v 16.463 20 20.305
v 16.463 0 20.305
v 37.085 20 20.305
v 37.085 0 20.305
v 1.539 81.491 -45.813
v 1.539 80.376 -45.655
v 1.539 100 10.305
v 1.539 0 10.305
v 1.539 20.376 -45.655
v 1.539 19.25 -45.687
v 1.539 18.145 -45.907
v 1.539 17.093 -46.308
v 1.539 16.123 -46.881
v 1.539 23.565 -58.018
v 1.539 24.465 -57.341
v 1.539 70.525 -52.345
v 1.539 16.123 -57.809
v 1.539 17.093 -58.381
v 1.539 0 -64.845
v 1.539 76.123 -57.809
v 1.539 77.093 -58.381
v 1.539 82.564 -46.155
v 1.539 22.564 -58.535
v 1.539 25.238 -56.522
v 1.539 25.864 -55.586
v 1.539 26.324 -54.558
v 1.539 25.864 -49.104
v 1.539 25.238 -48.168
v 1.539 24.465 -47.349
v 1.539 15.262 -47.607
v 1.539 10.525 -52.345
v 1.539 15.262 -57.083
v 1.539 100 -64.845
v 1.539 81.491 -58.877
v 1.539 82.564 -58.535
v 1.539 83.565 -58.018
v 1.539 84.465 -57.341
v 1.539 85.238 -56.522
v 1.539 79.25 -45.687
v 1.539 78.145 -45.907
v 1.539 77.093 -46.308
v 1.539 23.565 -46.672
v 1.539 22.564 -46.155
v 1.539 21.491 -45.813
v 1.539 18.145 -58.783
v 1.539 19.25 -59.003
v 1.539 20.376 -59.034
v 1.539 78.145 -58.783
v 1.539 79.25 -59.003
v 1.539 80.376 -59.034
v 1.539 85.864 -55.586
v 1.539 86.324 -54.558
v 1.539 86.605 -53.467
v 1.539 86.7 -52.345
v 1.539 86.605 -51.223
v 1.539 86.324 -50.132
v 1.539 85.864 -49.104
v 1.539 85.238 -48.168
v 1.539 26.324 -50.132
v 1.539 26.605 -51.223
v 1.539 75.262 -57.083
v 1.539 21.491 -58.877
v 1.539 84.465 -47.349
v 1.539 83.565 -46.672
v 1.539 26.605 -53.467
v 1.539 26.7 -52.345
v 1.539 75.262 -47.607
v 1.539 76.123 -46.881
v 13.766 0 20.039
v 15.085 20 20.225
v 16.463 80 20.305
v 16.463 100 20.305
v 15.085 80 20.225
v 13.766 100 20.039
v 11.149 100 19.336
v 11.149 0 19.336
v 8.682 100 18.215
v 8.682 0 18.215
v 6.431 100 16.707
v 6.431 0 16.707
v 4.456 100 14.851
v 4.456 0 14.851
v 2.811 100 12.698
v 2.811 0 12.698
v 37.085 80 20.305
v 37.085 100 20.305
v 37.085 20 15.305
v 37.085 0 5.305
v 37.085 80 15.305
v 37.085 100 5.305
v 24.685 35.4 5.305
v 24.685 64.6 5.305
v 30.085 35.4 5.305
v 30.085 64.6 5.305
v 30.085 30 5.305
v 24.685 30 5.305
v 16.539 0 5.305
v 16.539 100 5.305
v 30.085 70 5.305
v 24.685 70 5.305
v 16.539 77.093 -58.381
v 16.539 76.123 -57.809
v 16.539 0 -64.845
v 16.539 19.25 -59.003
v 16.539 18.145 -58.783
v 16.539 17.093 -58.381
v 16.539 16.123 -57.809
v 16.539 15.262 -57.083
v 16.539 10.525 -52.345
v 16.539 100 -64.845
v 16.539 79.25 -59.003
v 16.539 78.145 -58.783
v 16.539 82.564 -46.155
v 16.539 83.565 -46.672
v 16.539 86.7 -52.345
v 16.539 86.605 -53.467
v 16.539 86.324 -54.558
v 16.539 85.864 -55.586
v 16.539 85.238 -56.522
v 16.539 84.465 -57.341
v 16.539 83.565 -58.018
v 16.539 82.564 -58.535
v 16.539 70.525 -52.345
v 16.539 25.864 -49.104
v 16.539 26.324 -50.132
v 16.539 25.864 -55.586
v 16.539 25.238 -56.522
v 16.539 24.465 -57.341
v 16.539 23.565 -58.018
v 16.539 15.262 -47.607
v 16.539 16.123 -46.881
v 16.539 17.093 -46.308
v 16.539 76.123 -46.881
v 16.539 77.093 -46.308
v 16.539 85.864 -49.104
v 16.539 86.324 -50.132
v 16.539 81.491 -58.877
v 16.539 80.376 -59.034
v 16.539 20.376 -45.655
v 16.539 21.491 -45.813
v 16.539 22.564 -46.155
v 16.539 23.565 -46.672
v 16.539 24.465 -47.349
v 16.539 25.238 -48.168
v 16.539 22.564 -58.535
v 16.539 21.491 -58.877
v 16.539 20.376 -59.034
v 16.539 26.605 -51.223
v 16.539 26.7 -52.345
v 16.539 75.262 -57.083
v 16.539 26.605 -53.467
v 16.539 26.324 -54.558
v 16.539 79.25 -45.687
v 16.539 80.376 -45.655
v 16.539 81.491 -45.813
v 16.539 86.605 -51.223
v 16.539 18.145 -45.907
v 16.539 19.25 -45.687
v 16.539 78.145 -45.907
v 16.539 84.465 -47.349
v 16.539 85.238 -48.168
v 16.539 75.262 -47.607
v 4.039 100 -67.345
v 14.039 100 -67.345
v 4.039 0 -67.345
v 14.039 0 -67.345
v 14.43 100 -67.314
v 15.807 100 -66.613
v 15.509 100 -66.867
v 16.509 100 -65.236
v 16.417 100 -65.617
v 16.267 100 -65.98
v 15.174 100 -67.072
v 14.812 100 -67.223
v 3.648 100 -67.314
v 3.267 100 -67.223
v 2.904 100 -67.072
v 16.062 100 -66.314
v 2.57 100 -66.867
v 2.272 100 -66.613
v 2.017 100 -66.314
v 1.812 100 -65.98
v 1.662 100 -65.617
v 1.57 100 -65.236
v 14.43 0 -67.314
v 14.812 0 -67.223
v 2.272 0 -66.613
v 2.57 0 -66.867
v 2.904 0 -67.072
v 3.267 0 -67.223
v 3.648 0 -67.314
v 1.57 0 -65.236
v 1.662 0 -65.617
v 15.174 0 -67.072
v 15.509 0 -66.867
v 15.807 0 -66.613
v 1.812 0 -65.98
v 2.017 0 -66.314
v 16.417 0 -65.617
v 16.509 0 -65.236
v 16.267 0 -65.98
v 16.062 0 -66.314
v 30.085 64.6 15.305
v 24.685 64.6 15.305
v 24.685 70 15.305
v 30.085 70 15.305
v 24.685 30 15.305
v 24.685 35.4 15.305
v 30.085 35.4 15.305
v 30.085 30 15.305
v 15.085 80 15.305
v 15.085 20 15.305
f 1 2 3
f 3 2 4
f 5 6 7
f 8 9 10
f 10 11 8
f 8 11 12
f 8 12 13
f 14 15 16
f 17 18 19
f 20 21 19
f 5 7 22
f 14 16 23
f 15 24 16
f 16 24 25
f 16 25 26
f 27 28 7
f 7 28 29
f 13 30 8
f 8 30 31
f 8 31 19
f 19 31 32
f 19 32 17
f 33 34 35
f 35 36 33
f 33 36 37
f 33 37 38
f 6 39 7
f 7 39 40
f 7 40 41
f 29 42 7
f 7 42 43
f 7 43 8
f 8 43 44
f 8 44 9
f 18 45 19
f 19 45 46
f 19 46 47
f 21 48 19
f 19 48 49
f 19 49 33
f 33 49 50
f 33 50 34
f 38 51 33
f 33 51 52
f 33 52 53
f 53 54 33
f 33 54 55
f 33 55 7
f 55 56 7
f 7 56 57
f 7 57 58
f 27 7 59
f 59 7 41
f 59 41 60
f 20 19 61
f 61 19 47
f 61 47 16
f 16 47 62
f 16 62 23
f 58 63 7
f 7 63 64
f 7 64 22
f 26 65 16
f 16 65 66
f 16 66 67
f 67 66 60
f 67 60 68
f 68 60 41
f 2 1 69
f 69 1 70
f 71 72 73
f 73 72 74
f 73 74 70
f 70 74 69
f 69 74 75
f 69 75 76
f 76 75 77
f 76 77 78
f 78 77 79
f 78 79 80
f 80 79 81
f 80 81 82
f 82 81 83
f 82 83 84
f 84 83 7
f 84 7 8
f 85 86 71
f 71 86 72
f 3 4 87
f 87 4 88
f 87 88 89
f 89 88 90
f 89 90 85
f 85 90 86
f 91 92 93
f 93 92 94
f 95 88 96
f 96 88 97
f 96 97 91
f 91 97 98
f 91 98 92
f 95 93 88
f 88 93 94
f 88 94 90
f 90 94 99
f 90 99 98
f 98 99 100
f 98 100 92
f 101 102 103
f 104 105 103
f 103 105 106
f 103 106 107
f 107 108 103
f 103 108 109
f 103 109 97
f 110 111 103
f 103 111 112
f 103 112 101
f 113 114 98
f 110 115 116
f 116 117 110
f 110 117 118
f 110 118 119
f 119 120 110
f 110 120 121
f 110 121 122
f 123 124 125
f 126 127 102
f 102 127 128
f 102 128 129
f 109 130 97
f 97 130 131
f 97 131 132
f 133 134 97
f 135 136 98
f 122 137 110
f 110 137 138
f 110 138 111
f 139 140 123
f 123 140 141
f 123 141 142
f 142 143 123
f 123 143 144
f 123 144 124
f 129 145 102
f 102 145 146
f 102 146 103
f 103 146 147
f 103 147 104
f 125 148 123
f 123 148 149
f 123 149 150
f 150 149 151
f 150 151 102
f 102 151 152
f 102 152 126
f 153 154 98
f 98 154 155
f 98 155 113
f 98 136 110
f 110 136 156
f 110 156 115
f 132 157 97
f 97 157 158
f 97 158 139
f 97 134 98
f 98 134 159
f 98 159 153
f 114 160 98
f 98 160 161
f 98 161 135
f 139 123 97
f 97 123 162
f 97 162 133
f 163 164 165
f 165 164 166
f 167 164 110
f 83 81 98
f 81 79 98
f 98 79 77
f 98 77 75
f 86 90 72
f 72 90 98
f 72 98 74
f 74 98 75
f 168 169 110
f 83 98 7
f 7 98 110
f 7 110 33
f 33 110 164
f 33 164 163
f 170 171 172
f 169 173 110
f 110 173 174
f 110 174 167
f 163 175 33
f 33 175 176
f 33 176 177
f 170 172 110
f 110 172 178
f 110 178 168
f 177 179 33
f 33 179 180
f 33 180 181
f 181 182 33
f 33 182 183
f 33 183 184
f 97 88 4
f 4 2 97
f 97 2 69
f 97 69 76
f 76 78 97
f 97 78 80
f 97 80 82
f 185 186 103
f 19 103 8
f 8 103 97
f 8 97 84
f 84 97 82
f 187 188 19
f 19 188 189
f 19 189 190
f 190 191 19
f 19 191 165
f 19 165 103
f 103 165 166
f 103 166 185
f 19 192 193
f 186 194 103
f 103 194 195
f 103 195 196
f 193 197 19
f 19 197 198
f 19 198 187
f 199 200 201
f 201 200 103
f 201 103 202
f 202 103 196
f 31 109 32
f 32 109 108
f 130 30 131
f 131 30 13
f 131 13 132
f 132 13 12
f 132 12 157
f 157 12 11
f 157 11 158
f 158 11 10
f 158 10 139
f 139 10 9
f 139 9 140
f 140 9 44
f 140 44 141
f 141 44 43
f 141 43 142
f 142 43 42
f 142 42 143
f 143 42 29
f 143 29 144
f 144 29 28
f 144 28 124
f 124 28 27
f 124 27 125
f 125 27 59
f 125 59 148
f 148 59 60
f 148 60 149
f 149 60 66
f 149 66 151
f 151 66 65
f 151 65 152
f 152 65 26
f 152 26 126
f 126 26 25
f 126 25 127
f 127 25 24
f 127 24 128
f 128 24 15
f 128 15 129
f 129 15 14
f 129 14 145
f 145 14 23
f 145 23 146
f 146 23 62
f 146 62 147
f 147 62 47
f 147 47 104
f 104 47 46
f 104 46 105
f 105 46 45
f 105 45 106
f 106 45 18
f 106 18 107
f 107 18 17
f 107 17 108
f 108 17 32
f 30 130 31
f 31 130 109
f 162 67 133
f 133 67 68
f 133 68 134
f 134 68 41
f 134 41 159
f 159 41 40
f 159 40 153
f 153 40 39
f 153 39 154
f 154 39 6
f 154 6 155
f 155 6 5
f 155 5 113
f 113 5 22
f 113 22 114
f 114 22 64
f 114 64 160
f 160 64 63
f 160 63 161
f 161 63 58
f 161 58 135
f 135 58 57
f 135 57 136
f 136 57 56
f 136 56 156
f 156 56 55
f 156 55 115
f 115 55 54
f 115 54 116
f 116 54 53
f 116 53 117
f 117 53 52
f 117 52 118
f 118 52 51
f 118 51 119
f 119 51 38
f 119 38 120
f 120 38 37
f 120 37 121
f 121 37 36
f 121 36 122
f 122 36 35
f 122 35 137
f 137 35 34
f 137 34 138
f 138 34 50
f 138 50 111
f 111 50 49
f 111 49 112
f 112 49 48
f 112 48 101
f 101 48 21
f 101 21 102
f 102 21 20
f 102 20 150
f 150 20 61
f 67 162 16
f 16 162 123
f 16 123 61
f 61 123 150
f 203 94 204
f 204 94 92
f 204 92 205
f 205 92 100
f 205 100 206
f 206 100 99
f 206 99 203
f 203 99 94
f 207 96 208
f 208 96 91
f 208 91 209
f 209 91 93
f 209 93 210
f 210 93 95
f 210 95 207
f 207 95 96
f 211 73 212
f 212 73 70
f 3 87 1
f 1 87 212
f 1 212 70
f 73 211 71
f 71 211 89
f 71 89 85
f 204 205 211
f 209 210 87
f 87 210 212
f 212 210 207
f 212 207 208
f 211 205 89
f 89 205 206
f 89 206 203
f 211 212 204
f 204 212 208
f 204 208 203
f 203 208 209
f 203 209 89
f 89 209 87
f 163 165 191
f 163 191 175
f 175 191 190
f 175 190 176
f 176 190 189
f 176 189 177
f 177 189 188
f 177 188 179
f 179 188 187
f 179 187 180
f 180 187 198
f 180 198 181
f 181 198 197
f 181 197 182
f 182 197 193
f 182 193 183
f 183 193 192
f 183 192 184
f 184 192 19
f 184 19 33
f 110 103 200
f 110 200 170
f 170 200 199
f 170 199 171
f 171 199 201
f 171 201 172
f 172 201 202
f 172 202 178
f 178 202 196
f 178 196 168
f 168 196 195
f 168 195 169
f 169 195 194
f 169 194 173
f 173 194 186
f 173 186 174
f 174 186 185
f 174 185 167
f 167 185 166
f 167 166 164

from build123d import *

# Parameters (mm, degrees)
BOSS_EXTRUDE1_DEPTH = 100
CUT_EXTRUDE1_DEPTH  = 126.693414536
SKETCH3_W           = 5.4
SKETCH3_H           = 5.4
CUT_EXTRUDE2_DEPTH  = 139.050096295
SKETCH4_W           = 22
SKETCH4_H           = 60
CUT_EXTRUDE3_DEPTH  = 5
FILLET1_R           = 2.5


with BuildPart() as part:
    # Sketch1 → Boss-Extrude1 (new body)
    with BuildSketch(Plane(origin=(0, 0, 0), x_dir=(-1, 0, 0), z_dir=(0, 1, 0))):
        with BuildLine():
            Line((-16.539379475, 20.305108986), (-16.462740437, 20.305108986))
            ThreePointArc((-16.462740437, 20.305108986), (-7.525387839, 17.507307751), (-1.539379475, 10.305108986))
            Line((-1.539379475, 10.305108986), (-1.539379475, -67.344891014))
            Line((-1.539379475, -67.344891014), (-16.539379475, -67.344891014))
            Line((-16.539379475, -67.344891014), (-16.539379475, 5.305108986))
            Line((-16.539379475, 5.305108986), (-37.085126223, 5.305108986))
            Line((-37.085126223, 5.305108986), (-37.085126223, 20.305108986))
            Line((-37.085126223, 20.305108986), (-16.539379475, 20.305108986))
        make_face()
    extrude(amount=BOSS_EXTRUDE1_DEPTH)

    # Sketch2 → Cut-Extrude1 (cut, through all)
    with BuildSketch(Plane(origin=(1.539379475, 0, 0), x_dir=(0, -1, 0), z_dir=(-1, 0, 0))):
        with BuildLine():
            Line((-75.262384566, -47.60727558), (-70.524769132, -52.344891014))
            Line((-70.524769132, -52.344891014), (-75.262384566, -57.082506448))
            ThreePointArc((-75.262384566, -57.082506448), (-86.7, -52.344891014), (-75.262384566, -47.60727558))
        make_face()
        with BuildLine():
            Line((-10.524769132, -52.344891014), (-15.262384566, -47.60727558))
            ThreePointArc((-15.262384566, -47.60727558), (-26.7, -52.344891014), (-15.262384566, -57.082506448))
            Line((-15.262384566, -57.082506448), (-10.524769132, -52.344891014))
        make_face()
    extrude(amount=-CUT_EXTRUDE1_DEPTH, mode=Mode.SUBTRACT)

    # Sketch3 → Cut-Extrude2 (cut, through all)
    with BuildSketch(Plane.XY.offset(20.305108986)):
        with Locations((27.385126223, 32.7)):
            Rectangle(SKETCH3_W, SKETCH3_H)
        with Locations((27.385126223, 67.3)):
            Rectangle(SKETCH3_W, SKETCH3_H)
    extrude(amount=-CUT_EXTRUDE2_DEPTH, mode=Mode.SUBTRACT)

    # Sketch4 → Cut-Extrude3 (cut)
    with BuildSketch(Plane.XY.offset(20.305108986)):
        with Locations((26.085126223, 50)):
            Rectangle(SKETCH4_W, SKETCH4_H)
    extrude(amount=-CUT_EXTRUDE3_DEPTH, mode=Mode.SUBTRACT)

    # Fillet1
    fillet1_edges = [part.edges().sort_by_distance(p)[0] for p in [
        (1.539379475, 50, -67.344891014),
        (16.539379475, 50, -67.344891014),
    ]]
    fillet(fillet1_edges, radius=FILLET1_R)


solid = part.part
